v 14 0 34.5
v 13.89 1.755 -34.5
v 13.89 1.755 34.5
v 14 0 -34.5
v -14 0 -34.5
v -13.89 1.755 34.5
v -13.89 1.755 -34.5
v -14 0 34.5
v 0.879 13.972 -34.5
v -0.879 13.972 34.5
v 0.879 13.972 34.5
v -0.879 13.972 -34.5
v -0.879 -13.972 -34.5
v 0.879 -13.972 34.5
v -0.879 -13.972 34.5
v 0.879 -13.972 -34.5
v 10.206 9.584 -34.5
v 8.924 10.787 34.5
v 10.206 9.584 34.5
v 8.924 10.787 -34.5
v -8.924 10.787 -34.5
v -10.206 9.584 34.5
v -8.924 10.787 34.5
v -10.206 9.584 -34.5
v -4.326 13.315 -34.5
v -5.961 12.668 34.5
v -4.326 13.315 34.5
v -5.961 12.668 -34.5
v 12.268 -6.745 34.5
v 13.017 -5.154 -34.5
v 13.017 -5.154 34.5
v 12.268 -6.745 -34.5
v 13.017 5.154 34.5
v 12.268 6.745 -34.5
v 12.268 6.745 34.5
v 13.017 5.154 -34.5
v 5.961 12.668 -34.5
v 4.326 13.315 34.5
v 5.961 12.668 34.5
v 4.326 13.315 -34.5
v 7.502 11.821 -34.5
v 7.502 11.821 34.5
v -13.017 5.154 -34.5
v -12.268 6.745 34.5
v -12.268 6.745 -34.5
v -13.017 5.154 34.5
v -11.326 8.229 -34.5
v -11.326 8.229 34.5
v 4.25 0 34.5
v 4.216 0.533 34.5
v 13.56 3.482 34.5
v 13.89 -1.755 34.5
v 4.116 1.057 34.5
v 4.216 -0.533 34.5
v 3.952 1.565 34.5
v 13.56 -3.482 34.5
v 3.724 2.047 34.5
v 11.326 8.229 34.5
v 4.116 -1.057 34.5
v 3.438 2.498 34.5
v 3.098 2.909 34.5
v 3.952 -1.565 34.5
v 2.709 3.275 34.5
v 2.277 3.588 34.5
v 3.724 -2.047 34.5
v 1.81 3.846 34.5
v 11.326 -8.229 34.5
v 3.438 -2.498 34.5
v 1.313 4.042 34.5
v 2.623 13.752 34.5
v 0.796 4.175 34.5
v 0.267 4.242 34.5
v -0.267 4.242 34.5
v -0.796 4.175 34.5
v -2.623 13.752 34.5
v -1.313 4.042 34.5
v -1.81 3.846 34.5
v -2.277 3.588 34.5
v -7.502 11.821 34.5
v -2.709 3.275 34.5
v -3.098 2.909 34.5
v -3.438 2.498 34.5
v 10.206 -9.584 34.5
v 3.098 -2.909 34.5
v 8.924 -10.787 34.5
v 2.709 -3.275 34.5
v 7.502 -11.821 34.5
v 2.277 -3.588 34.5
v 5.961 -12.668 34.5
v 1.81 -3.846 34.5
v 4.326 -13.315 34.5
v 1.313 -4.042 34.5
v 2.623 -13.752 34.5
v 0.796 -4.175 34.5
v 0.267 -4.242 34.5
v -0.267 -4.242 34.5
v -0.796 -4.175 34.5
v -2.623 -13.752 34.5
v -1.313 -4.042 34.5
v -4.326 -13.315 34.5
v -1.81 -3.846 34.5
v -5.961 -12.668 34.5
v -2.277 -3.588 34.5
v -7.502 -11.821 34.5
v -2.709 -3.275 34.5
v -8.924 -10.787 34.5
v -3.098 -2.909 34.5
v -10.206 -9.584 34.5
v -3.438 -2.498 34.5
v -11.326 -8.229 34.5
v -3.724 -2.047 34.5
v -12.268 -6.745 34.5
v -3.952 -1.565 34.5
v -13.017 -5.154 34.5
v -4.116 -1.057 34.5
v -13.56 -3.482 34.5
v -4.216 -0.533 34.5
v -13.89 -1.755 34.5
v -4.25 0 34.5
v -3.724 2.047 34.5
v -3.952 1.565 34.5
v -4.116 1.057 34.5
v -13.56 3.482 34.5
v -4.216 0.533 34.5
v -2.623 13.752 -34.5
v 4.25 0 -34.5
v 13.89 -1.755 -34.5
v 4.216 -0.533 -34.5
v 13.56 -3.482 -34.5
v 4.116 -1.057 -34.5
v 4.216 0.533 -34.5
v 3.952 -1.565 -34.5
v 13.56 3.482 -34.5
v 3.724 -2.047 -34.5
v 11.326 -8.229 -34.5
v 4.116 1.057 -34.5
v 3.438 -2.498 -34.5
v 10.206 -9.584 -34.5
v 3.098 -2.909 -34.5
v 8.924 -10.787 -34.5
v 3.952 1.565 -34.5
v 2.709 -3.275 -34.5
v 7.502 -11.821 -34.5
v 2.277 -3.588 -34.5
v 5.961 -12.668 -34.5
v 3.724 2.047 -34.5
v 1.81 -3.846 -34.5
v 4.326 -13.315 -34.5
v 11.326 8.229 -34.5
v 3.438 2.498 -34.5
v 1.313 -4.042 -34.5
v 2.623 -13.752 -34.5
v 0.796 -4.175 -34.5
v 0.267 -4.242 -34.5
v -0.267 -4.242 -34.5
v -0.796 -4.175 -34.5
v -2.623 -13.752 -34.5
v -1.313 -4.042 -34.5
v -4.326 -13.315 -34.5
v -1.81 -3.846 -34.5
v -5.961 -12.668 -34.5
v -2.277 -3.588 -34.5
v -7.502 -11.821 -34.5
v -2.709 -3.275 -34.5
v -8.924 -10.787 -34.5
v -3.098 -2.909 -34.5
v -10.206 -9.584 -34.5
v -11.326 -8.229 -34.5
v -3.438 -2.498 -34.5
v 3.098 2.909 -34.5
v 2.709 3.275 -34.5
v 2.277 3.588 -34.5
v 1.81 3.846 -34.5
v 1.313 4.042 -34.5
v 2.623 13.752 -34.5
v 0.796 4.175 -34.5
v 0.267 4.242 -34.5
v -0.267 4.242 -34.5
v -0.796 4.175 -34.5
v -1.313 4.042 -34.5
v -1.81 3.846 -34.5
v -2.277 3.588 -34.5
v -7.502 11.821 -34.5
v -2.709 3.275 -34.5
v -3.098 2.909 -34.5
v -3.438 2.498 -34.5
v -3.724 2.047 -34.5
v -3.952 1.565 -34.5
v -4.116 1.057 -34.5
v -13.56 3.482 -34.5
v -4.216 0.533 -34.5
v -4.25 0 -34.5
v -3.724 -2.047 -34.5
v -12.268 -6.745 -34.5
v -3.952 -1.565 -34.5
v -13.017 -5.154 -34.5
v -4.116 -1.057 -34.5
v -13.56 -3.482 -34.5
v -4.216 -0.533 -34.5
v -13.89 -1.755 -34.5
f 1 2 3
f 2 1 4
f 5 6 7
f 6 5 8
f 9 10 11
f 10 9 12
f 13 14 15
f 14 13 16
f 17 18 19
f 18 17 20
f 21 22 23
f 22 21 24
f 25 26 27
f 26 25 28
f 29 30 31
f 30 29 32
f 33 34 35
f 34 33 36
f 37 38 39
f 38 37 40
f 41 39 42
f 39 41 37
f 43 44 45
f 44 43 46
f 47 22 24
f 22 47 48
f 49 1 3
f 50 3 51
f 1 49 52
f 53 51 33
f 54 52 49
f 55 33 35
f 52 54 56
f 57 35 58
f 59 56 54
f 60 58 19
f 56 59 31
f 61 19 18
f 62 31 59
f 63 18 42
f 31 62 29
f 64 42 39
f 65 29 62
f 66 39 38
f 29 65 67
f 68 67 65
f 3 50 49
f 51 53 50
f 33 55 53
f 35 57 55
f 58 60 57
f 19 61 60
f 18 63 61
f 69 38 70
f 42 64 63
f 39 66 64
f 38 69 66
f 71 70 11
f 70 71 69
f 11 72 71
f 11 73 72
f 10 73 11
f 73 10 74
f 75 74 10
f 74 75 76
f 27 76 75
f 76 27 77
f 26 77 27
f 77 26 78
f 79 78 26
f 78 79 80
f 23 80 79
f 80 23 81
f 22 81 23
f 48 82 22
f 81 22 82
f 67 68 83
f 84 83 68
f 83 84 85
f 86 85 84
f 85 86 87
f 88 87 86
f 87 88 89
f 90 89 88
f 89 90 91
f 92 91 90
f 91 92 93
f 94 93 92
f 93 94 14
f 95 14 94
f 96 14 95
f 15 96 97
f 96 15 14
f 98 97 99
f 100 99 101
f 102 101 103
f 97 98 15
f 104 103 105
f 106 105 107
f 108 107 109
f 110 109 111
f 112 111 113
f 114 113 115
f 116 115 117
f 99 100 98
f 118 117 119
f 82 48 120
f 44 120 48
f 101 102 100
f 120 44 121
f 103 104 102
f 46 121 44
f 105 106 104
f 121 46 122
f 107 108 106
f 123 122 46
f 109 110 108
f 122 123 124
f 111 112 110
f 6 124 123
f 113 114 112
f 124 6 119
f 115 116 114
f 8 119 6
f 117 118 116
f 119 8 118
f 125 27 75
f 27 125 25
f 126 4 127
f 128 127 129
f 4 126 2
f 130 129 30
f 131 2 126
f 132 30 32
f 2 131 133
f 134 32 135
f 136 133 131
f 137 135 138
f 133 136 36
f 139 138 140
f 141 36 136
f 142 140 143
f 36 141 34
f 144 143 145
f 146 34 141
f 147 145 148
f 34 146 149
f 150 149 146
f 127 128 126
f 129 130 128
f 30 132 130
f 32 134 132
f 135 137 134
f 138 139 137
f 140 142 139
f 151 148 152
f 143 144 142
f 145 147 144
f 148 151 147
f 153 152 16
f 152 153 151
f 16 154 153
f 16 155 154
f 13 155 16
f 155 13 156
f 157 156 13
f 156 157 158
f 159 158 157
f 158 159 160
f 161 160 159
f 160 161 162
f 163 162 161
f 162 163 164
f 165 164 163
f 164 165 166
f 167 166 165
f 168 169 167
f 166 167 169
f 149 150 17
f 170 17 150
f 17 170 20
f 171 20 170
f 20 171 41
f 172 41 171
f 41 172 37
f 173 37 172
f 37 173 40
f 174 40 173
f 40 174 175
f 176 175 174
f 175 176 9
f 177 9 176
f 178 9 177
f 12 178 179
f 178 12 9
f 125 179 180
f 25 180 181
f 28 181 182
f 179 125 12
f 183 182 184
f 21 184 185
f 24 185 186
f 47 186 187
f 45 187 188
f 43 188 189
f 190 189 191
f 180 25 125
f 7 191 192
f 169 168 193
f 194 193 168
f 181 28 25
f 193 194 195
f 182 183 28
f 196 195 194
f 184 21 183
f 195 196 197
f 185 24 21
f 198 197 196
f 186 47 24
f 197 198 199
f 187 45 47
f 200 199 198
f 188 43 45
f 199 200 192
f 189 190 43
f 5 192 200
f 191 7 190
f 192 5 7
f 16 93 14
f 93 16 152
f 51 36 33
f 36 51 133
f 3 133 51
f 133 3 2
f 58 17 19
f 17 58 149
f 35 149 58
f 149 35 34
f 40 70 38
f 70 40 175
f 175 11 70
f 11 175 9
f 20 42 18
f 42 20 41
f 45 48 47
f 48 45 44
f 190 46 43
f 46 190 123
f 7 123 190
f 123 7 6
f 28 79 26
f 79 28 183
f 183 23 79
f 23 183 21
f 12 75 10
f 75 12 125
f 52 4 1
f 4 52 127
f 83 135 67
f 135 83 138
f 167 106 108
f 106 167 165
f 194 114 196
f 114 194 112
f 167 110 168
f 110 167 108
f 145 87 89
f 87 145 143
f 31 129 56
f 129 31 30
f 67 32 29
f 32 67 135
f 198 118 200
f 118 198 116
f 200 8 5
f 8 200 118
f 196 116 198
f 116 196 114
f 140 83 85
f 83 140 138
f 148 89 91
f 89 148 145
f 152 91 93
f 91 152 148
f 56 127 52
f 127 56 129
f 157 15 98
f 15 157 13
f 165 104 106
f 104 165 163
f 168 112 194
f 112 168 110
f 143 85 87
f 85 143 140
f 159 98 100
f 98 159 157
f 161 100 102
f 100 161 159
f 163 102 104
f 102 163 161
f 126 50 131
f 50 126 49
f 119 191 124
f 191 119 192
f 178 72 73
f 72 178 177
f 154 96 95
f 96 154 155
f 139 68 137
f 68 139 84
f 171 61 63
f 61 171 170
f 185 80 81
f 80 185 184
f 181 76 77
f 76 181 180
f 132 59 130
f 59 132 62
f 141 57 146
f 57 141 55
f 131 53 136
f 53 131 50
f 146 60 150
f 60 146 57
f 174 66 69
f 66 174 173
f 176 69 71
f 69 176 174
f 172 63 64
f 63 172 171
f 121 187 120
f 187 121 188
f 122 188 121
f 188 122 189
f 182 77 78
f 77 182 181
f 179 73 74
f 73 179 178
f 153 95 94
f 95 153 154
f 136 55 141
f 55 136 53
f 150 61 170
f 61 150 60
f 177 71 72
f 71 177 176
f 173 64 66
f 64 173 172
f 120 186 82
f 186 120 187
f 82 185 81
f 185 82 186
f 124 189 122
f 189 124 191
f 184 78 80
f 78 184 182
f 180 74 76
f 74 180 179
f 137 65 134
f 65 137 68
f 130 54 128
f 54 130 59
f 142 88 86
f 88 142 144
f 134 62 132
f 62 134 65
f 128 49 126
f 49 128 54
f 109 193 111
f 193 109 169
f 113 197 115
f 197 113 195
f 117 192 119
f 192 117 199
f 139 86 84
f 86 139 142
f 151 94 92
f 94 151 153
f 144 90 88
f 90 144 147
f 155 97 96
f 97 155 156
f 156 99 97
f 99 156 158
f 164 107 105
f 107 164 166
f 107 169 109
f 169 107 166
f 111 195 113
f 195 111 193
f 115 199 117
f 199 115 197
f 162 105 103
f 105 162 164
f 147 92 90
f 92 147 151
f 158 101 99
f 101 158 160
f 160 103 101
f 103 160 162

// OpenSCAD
$fn = 50;


difference() {
	union() {
		translate(v = [0, 0, -34.5000000000]) {
			cylinder(h = 69, r = 14.0000000000);
		}
	}
	union() {
		translate(v = [0, 0, -100.0000000000]) {
			cylinder(h = 200, r = 4.2500000000);
		}
	}
}
